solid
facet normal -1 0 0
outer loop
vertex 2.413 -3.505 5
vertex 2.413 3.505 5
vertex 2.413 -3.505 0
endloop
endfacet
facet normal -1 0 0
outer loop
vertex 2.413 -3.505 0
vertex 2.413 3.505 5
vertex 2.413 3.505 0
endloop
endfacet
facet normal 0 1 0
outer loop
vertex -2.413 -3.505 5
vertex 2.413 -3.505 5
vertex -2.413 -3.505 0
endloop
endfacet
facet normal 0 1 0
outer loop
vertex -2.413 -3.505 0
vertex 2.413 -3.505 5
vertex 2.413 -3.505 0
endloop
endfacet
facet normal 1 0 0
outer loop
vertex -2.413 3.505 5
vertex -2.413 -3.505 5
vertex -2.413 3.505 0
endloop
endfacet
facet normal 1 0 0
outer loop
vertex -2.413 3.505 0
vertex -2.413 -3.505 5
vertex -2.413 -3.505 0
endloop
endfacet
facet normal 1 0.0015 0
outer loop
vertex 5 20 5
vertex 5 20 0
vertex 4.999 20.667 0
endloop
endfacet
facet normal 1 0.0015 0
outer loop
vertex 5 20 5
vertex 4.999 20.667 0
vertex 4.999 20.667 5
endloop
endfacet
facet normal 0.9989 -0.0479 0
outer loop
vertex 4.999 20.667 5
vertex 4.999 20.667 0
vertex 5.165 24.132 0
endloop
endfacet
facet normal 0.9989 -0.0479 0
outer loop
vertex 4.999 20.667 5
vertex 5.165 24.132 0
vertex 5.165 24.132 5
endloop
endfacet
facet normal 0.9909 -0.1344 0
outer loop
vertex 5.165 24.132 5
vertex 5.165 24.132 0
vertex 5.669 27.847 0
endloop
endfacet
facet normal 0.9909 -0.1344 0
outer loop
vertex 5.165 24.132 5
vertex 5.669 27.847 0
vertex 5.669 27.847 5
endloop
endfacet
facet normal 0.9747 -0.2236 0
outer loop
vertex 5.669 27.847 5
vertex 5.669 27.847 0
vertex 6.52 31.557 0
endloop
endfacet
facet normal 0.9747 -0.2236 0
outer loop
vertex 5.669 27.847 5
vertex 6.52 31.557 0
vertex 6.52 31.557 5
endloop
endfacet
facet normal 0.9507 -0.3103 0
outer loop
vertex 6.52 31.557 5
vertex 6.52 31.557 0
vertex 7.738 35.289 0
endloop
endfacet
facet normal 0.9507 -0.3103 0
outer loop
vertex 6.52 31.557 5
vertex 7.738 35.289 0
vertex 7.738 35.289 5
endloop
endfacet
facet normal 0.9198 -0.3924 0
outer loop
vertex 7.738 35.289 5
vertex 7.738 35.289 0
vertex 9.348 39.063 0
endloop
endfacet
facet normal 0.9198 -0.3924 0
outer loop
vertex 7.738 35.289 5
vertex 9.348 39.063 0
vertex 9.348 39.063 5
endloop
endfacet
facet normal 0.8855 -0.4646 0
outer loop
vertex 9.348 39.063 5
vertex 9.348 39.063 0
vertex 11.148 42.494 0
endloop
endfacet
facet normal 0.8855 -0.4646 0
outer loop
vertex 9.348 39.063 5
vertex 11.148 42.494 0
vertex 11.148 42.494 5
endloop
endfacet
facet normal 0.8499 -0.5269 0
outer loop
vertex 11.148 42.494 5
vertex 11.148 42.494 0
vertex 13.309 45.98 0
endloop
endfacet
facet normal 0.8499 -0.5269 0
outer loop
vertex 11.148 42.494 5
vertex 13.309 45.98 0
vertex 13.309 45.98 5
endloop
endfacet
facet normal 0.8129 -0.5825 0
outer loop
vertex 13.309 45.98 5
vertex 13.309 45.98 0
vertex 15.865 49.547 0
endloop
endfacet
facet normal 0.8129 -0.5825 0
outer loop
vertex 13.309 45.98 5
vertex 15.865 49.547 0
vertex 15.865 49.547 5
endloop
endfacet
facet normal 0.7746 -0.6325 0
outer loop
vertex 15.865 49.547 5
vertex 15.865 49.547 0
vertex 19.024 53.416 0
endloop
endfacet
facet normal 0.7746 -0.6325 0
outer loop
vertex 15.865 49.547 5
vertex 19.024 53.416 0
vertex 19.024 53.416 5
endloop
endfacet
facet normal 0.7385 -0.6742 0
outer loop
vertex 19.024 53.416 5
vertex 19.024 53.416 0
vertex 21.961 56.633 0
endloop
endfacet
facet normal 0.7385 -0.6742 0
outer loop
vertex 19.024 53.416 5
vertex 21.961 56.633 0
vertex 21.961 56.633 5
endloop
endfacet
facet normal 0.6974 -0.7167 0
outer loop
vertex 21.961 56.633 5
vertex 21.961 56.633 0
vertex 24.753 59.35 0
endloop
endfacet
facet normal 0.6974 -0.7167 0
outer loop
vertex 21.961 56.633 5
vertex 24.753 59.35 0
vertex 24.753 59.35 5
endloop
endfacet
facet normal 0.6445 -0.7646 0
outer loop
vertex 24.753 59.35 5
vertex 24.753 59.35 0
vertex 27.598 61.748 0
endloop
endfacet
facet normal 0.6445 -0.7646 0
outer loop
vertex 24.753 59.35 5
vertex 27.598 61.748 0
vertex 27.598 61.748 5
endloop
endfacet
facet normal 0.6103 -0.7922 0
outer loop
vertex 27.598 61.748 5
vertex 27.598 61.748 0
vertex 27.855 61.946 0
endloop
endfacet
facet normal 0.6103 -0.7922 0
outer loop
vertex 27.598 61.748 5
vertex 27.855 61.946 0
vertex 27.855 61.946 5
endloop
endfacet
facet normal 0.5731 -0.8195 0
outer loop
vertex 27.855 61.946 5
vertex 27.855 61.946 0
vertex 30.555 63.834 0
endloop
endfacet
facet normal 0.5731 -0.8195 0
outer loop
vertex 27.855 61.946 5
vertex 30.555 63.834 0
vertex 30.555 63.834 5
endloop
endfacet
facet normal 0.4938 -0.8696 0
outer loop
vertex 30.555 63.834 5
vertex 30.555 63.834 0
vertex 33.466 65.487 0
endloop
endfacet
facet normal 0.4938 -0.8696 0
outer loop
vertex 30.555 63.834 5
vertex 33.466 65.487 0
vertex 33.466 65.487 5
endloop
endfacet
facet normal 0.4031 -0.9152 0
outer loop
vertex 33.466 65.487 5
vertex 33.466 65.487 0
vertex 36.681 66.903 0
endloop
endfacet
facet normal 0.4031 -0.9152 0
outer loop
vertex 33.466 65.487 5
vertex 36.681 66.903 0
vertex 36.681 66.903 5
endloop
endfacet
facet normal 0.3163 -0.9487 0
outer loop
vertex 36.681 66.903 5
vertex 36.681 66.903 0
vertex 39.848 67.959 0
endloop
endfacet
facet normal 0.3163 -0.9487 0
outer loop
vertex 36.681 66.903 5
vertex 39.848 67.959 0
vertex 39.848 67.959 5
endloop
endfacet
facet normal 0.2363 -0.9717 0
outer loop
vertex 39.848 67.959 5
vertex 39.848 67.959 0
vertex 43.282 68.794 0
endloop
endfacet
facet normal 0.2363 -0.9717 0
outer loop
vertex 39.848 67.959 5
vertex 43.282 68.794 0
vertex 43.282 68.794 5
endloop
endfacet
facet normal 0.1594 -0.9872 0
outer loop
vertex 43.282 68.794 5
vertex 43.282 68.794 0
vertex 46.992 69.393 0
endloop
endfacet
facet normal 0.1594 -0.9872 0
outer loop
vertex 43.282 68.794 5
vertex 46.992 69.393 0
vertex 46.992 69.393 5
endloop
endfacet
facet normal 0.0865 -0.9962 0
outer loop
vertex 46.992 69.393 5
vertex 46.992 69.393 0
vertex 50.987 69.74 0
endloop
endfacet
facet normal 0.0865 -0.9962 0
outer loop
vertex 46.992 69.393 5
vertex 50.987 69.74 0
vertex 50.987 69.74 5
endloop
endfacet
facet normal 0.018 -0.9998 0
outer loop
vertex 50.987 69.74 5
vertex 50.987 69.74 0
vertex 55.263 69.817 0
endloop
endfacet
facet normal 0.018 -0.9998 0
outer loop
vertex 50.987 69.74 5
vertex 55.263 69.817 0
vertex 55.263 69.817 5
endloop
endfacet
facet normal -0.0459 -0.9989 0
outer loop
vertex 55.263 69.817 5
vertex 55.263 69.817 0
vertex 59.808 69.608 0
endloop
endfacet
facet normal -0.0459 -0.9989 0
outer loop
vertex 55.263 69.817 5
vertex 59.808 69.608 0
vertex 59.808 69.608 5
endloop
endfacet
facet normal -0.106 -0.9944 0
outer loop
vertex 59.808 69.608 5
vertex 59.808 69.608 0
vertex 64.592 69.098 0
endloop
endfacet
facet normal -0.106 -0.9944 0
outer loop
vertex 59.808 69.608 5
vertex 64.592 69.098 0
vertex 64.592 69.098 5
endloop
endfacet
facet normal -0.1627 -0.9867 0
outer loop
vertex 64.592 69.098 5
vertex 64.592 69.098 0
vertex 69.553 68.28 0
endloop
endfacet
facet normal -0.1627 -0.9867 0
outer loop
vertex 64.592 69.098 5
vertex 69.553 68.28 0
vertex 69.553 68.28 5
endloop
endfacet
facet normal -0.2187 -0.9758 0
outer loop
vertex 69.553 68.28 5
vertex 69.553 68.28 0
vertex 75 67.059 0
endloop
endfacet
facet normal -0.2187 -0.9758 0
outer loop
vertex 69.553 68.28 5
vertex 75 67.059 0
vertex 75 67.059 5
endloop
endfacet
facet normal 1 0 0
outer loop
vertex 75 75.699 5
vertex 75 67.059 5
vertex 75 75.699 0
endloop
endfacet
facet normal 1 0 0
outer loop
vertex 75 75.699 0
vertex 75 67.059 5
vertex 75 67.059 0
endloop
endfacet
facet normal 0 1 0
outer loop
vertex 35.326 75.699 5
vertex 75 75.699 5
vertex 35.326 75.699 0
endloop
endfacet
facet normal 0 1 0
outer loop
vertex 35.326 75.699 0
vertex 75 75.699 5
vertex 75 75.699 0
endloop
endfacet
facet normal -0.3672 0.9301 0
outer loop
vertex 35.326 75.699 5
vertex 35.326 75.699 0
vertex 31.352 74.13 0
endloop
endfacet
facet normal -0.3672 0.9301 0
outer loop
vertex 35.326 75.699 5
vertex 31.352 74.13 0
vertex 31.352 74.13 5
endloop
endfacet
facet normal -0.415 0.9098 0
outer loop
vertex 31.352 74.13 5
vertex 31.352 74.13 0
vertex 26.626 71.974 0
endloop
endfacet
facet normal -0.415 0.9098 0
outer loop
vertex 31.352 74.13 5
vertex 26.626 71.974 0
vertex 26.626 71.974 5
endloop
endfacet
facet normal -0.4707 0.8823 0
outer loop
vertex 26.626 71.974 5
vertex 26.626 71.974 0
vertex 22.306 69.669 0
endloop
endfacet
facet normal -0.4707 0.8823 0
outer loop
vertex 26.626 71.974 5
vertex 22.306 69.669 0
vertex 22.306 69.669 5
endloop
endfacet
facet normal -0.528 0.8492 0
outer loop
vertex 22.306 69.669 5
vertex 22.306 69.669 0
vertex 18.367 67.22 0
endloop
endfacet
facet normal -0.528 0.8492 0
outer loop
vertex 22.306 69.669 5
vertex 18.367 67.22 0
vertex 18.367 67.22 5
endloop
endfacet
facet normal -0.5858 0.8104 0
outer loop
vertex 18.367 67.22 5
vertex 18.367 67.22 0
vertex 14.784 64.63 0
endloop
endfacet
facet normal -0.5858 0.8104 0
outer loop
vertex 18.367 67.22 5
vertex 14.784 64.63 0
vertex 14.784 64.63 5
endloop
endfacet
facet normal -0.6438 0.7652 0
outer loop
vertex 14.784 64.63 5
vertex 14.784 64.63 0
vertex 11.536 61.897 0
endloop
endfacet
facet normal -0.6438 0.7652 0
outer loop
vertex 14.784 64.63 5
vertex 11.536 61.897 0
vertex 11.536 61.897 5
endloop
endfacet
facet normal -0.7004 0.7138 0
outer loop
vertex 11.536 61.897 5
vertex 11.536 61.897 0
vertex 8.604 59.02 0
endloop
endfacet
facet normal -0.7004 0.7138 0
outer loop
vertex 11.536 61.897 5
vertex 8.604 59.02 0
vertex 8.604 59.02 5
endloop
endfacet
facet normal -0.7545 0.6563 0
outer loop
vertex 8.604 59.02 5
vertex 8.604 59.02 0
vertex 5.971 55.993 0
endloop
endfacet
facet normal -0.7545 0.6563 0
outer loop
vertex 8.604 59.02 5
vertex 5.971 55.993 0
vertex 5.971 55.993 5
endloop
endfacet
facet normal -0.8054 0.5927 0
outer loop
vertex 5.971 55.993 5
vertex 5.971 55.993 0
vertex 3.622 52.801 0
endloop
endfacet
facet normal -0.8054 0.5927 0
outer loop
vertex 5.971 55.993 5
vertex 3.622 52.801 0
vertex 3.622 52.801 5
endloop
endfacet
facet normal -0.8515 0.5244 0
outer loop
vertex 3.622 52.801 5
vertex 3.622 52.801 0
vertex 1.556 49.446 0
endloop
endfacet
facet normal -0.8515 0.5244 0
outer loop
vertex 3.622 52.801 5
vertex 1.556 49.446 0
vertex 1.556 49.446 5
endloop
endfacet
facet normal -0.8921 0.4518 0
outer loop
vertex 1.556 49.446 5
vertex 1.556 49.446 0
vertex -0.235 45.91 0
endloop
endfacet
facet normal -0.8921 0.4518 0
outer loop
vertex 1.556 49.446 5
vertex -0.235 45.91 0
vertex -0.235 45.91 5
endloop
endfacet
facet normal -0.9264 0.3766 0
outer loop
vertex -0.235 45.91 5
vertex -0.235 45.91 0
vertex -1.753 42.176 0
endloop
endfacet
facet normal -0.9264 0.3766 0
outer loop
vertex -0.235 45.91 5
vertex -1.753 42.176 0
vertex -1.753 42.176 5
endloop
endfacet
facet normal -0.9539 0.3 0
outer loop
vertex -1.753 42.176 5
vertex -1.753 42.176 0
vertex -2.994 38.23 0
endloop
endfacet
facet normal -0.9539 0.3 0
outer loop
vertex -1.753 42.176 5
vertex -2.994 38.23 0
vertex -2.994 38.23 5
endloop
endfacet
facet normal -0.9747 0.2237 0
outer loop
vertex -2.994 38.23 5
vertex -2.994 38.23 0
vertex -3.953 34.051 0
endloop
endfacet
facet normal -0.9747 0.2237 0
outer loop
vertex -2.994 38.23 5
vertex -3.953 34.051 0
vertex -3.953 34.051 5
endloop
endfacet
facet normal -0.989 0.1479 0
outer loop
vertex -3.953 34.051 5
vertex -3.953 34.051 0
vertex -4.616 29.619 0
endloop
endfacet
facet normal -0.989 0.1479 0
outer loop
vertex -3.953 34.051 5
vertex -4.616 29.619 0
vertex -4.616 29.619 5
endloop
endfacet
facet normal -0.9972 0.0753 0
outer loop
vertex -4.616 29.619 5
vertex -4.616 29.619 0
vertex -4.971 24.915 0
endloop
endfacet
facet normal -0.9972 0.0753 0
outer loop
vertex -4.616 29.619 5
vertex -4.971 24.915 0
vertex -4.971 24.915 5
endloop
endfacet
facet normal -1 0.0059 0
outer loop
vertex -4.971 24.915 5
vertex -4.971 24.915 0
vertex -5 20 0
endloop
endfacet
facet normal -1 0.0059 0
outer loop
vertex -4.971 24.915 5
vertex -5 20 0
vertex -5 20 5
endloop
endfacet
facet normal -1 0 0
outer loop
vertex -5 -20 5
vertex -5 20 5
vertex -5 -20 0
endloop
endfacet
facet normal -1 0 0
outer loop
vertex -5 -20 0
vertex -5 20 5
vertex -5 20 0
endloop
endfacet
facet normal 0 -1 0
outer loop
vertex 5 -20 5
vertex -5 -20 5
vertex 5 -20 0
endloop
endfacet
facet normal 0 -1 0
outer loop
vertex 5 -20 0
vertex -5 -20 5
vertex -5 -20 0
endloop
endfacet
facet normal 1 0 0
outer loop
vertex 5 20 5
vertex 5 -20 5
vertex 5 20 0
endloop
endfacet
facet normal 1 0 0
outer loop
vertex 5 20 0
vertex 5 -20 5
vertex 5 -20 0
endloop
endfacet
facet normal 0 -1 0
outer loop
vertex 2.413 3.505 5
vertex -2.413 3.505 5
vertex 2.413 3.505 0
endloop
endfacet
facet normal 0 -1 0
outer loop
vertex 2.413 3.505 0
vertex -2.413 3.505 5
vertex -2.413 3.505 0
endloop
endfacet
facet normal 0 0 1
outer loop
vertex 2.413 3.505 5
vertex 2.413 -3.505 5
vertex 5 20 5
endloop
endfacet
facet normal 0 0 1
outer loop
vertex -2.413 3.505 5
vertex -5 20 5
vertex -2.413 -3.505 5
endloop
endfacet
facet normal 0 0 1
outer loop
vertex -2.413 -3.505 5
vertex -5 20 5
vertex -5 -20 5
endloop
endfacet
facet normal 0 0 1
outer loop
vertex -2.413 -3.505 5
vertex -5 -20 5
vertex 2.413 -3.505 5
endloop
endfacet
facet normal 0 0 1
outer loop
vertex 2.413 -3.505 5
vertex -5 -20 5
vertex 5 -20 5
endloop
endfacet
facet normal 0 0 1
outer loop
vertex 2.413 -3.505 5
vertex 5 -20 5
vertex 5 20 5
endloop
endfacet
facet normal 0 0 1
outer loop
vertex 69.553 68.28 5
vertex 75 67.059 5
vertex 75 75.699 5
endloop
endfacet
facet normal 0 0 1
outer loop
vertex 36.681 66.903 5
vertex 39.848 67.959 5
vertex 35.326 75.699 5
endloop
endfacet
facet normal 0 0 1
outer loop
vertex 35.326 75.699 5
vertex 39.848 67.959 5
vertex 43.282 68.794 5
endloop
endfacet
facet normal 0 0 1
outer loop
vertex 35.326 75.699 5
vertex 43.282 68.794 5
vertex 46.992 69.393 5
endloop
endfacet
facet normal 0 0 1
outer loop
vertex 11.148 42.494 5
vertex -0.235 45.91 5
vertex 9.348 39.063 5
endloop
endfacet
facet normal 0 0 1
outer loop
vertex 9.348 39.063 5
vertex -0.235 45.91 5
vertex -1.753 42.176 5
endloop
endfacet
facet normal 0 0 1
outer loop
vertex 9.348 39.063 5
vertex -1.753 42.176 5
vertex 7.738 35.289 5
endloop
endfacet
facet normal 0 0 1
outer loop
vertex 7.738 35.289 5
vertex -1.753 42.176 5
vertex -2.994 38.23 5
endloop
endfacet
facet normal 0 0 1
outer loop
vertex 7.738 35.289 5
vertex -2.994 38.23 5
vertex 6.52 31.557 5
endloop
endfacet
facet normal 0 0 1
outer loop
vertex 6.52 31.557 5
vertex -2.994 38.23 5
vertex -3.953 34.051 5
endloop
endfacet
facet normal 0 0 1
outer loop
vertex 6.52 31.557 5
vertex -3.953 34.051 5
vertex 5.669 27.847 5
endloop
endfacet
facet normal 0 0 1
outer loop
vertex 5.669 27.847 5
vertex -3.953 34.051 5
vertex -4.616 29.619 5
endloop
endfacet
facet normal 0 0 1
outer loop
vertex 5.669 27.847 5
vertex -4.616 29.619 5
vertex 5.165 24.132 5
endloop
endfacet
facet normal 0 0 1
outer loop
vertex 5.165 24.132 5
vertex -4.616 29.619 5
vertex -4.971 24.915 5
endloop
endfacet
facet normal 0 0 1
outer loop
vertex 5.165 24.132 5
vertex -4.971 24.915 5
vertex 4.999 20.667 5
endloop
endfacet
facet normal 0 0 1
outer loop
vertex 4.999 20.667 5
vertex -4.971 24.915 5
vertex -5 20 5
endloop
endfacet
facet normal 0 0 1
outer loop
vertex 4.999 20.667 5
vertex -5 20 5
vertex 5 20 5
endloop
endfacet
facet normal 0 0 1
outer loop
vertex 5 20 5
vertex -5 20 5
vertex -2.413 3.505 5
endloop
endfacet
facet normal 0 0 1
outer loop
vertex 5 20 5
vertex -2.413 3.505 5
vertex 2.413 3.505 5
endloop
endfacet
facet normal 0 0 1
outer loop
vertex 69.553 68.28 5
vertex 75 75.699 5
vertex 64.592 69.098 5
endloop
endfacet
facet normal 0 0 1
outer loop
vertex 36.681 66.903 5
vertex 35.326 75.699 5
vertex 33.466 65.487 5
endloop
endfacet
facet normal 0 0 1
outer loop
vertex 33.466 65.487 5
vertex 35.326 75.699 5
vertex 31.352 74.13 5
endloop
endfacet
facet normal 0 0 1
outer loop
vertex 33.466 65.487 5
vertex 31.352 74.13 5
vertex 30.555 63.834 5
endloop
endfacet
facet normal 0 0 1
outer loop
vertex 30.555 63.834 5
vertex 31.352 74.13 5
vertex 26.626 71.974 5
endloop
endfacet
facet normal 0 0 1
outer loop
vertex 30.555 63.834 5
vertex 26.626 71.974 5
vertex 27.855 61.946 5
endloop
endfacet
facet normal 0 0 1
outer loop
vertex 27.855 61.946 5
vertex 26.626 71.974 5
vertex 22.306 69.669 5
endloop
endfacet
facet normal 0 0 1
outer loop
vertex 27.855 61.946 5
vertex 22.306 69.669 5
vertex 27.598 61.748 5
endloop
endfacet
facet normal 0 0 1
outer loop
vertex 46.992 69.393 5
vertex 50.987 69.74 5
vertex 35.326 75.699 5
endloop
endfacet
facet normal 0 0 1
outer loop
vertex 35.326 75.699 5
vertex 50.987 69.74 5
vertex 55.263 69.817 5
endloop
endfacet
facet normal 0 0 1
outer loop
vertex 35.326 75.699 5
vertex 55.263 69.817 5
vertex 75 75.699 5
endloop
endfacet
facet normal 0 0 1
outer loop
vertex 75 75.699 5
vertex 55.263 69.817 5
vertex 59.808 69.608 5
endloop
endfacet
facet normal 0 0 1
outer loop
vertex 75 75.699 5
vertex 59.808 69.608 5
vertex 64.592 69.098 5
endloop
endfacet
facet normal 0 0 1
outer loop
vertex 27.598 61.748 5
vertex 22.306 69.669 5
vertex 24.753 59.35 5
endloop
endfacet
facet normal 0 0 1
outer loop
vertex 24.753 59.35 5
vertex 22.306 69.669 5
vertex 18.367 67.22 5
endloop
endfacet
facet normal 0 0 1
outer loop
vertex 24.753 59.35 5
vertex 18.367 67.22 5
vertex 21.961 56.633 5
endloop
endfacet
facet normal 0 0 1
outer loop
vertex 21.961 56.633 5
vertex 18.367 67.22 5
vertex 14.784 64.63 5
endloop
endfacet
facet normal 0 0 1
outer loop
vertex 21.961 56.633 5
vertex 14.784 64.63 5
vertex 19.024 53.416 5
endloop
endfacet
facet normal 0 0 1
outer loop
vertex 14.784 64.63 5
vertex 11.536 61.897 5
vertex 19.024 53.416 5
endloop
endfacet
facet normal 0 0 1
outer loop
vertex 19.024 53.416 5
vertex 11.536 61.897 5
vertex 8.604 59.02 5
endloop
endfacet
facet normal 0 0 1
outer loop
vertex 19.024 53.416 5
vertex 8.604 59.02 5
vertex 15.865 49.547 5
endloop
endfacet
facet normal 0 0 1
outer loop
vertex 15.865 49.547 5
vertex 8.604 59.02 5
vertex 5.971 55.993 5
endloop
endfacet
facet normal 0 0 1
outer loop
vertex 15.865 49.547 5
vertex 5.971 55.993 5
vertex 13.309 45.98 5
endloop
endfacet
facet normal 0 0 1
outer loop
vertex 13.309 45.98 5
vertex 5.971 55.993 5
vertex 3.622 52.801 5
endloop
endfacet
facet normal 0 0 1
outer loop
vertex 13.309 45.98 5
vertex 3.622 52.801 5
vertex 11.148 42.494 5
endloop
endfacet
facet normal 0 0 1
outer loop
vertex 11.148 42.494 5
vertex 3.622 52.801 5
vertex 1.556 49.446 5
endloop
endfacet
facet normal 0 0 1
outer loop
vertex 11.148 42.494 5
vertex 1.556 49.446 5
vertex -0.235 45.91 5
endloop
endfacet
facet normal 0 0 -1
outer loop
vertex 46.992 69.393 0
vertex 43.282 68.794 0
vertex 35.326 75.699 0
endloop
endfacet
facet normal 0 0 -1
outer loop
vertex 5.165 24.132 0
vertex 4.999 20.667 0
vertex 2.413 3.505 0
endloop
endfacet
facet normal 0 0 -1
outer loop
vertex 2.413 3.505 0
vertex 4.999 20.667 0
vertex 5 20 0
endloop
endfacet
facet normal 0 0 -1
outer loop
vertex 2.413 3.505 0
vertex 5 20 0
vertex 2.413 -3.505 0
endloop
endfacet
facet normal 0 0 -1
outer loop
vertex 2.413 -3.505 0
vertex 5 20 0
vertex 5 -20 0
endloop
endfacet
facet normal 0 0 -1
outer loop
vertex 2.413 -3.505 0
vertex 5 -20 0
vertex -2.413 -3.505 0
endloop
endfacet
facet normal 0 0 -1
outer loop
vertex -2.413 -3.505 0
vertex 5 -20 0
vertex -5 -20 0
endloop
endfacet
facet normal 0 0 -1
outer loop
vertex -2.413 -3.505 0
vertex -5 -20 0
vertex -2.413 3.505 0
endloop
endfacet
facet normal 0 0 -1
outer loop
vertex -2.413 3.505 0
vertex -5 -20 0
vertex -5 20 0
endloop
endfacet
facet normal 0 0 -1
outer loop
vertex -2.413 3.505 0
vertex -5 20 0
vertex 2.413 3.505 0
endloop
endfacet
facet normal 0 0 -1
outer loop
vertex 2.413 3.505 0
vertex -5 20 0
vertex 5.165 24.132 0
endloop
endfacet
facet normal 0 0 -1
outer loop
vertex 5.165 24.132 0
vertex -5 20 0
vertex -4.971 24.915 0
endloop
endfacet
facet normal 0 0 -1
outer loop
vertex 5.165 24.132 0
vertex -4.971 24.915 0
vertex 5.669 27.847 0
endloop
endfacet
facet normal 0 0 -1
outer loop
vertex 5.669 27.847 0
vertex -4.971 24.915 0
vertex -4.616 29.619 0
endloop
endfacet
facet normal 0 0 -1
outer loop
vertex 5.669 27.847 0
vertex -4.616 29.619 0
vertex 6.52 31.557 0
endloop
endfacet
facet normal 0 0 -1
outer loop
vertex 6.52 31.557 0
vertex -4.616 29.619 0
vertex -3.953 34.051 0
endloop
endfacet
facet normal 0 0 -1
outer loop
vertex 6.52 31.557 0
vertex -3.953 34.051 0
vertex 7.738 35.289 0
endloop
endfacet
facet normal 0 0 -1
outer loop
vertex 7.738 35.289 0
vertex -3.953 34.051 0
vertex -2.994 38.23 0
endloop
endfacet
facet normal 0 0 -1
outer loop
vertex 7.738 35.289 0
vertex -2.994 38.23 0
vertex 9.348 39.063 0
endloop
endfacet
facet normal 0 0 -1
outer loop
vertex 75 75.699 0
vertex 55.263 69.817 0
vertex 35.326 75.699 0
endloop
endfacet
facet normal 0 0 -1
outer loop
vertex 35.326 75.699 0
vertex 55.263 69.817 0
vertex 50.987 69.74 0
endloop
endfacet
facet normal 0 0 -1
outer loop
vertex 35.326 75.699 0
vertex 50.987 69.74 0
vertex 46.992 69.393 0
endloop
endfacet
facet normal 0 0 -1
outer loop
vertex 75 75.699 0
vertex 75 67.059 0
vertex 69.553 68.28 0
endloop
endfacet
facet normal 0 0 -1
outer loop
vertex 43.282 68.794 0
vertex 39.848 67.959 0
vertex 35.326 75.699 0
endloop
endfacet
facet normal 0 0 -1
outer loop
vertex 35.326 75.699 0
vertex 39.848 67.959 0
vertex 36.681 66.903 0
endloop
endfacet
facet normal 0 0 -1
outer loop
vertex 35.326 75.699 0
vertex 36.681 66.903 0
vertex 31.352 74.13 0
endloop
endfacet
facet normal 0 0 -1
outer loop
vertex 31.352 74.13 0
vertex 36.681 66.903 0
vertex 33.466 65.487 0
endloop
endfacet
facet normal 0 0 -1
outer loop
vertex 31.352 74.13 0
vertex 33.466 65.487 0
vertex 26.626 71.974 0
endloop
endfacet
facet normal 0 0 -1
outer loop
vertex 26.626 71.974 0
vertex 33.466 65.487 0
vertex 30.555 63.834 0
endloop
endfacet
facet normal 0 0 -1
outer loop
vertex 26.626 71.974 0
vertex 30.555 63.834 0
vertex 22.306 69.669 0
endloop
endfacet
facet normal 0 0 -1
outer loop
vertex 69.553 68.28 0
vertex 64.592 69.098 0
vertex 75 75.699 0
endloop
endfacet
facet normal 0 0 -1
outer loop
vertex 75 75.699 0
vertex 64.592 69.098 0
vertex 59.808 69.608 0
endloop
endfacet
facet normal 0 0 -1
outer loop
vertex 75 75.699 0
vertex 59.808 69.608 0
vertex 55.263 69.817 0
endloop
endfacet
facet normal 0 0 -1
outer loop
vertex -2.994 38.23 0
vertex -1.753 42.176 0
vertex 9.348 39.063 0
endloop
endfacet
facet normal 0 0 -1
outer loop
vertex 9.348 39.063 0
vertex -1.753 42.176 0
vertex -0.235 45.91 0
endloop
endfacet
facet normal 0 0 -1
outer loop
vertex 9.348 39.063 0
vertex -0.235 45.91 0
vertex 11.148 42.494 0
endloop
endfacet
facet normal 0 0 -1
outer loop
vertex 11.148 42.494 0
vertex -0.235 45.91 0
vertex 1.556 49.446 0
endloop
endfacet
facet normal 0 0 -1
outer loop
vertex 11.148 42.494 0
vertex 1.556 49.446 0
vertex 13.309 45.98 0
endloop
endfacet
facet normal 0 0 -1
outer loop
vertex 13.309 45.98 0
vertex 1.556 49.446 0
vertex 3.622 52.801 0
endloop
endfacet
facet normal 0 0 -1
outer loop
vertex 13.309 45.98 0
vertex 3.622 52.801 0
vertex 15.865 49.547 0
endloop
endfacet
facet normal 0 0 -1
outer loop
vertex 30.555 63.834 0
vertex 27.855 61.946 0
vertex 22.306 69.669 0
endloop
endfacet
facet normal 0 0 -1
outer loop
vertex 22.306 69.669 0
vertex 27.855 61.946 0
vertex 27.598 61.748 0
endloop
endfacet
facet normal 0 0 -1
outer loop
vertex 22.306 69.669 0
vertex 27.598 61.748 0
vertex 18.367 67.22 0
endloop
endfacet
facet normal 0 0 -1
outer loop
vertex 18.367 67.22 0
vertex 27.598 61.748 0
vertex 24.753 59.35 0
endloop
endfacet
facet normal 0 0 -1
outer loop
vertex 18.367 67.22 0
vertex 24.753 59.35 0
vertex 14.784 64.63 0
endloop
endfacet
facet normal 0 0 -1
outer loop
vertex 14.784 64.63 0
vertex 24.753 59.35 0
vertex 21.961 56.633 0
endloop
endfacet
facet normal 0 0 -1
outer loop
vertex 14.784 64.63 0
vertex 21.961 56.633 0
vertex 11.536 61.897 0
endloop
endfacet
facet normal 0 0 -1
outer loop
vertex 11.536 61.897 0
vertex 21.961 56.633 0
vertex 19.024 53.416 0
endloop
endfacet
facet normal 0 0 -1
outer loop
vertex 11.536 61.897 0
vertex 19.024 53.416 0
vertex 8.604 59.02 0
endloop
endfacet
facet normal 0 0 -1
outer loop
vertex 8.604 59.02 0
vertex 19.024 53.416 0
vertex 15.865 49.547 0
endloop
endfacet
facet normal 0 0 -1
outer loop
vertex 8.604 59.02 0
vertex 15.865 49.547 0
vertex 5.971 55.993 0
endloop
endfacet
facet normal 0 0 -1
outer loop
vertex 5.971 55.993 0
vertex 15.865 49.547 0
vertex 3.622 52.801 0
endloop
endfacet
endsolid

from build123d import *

# Parameters (mm, degrees)
ESQUISSE1_W        = 4.826
ESQUISSE1_H        = 7.0104
BOSS_EXTRU_2_DEPTH = 5


with BuildPart() as part:
    # Esquisse1 → Boss.-Extru.2 (new body)
    with BuildSketch(Plane.XY):
        with BuildLine():
            Line((-5, 20), (-5, -20))
            Line((-5, -20), (5, -20))
            Line((5, -20), (5, 20))
            add(Edge.make_bspline(
                [(75, 67.059484201), (62.03093477, 70.366927919), (38.269649401, 72.406891381), (13.9373301, 49.417587767), (4.875540917, 33.447930614), (5, 20)],
                knots=[0, 0, 0, 0, 0.444260837, 0.615865686, 1, 1, 1, 1], degree=3))
            Line((75, 67.059484201), (75, 75.698795143))
            Line((75, 75.698795143), (35.325749863, 75.698795143))
            add(Edge.make_bspline(
                [(-5, 20), (-6.083057018, 60.379699371), (35.325749863, 75.698795143)],
                knots=[0, 0, 0, 1, 1, 1], degree=2))
        make_face()
        Rectangle(ESQUISSE1_W, ESQUISSE1_H, mode=Mode.SUBTRACT)
    extrude(amount=BOSS_EXTRU_2_DEPTH)


solid = part.part
